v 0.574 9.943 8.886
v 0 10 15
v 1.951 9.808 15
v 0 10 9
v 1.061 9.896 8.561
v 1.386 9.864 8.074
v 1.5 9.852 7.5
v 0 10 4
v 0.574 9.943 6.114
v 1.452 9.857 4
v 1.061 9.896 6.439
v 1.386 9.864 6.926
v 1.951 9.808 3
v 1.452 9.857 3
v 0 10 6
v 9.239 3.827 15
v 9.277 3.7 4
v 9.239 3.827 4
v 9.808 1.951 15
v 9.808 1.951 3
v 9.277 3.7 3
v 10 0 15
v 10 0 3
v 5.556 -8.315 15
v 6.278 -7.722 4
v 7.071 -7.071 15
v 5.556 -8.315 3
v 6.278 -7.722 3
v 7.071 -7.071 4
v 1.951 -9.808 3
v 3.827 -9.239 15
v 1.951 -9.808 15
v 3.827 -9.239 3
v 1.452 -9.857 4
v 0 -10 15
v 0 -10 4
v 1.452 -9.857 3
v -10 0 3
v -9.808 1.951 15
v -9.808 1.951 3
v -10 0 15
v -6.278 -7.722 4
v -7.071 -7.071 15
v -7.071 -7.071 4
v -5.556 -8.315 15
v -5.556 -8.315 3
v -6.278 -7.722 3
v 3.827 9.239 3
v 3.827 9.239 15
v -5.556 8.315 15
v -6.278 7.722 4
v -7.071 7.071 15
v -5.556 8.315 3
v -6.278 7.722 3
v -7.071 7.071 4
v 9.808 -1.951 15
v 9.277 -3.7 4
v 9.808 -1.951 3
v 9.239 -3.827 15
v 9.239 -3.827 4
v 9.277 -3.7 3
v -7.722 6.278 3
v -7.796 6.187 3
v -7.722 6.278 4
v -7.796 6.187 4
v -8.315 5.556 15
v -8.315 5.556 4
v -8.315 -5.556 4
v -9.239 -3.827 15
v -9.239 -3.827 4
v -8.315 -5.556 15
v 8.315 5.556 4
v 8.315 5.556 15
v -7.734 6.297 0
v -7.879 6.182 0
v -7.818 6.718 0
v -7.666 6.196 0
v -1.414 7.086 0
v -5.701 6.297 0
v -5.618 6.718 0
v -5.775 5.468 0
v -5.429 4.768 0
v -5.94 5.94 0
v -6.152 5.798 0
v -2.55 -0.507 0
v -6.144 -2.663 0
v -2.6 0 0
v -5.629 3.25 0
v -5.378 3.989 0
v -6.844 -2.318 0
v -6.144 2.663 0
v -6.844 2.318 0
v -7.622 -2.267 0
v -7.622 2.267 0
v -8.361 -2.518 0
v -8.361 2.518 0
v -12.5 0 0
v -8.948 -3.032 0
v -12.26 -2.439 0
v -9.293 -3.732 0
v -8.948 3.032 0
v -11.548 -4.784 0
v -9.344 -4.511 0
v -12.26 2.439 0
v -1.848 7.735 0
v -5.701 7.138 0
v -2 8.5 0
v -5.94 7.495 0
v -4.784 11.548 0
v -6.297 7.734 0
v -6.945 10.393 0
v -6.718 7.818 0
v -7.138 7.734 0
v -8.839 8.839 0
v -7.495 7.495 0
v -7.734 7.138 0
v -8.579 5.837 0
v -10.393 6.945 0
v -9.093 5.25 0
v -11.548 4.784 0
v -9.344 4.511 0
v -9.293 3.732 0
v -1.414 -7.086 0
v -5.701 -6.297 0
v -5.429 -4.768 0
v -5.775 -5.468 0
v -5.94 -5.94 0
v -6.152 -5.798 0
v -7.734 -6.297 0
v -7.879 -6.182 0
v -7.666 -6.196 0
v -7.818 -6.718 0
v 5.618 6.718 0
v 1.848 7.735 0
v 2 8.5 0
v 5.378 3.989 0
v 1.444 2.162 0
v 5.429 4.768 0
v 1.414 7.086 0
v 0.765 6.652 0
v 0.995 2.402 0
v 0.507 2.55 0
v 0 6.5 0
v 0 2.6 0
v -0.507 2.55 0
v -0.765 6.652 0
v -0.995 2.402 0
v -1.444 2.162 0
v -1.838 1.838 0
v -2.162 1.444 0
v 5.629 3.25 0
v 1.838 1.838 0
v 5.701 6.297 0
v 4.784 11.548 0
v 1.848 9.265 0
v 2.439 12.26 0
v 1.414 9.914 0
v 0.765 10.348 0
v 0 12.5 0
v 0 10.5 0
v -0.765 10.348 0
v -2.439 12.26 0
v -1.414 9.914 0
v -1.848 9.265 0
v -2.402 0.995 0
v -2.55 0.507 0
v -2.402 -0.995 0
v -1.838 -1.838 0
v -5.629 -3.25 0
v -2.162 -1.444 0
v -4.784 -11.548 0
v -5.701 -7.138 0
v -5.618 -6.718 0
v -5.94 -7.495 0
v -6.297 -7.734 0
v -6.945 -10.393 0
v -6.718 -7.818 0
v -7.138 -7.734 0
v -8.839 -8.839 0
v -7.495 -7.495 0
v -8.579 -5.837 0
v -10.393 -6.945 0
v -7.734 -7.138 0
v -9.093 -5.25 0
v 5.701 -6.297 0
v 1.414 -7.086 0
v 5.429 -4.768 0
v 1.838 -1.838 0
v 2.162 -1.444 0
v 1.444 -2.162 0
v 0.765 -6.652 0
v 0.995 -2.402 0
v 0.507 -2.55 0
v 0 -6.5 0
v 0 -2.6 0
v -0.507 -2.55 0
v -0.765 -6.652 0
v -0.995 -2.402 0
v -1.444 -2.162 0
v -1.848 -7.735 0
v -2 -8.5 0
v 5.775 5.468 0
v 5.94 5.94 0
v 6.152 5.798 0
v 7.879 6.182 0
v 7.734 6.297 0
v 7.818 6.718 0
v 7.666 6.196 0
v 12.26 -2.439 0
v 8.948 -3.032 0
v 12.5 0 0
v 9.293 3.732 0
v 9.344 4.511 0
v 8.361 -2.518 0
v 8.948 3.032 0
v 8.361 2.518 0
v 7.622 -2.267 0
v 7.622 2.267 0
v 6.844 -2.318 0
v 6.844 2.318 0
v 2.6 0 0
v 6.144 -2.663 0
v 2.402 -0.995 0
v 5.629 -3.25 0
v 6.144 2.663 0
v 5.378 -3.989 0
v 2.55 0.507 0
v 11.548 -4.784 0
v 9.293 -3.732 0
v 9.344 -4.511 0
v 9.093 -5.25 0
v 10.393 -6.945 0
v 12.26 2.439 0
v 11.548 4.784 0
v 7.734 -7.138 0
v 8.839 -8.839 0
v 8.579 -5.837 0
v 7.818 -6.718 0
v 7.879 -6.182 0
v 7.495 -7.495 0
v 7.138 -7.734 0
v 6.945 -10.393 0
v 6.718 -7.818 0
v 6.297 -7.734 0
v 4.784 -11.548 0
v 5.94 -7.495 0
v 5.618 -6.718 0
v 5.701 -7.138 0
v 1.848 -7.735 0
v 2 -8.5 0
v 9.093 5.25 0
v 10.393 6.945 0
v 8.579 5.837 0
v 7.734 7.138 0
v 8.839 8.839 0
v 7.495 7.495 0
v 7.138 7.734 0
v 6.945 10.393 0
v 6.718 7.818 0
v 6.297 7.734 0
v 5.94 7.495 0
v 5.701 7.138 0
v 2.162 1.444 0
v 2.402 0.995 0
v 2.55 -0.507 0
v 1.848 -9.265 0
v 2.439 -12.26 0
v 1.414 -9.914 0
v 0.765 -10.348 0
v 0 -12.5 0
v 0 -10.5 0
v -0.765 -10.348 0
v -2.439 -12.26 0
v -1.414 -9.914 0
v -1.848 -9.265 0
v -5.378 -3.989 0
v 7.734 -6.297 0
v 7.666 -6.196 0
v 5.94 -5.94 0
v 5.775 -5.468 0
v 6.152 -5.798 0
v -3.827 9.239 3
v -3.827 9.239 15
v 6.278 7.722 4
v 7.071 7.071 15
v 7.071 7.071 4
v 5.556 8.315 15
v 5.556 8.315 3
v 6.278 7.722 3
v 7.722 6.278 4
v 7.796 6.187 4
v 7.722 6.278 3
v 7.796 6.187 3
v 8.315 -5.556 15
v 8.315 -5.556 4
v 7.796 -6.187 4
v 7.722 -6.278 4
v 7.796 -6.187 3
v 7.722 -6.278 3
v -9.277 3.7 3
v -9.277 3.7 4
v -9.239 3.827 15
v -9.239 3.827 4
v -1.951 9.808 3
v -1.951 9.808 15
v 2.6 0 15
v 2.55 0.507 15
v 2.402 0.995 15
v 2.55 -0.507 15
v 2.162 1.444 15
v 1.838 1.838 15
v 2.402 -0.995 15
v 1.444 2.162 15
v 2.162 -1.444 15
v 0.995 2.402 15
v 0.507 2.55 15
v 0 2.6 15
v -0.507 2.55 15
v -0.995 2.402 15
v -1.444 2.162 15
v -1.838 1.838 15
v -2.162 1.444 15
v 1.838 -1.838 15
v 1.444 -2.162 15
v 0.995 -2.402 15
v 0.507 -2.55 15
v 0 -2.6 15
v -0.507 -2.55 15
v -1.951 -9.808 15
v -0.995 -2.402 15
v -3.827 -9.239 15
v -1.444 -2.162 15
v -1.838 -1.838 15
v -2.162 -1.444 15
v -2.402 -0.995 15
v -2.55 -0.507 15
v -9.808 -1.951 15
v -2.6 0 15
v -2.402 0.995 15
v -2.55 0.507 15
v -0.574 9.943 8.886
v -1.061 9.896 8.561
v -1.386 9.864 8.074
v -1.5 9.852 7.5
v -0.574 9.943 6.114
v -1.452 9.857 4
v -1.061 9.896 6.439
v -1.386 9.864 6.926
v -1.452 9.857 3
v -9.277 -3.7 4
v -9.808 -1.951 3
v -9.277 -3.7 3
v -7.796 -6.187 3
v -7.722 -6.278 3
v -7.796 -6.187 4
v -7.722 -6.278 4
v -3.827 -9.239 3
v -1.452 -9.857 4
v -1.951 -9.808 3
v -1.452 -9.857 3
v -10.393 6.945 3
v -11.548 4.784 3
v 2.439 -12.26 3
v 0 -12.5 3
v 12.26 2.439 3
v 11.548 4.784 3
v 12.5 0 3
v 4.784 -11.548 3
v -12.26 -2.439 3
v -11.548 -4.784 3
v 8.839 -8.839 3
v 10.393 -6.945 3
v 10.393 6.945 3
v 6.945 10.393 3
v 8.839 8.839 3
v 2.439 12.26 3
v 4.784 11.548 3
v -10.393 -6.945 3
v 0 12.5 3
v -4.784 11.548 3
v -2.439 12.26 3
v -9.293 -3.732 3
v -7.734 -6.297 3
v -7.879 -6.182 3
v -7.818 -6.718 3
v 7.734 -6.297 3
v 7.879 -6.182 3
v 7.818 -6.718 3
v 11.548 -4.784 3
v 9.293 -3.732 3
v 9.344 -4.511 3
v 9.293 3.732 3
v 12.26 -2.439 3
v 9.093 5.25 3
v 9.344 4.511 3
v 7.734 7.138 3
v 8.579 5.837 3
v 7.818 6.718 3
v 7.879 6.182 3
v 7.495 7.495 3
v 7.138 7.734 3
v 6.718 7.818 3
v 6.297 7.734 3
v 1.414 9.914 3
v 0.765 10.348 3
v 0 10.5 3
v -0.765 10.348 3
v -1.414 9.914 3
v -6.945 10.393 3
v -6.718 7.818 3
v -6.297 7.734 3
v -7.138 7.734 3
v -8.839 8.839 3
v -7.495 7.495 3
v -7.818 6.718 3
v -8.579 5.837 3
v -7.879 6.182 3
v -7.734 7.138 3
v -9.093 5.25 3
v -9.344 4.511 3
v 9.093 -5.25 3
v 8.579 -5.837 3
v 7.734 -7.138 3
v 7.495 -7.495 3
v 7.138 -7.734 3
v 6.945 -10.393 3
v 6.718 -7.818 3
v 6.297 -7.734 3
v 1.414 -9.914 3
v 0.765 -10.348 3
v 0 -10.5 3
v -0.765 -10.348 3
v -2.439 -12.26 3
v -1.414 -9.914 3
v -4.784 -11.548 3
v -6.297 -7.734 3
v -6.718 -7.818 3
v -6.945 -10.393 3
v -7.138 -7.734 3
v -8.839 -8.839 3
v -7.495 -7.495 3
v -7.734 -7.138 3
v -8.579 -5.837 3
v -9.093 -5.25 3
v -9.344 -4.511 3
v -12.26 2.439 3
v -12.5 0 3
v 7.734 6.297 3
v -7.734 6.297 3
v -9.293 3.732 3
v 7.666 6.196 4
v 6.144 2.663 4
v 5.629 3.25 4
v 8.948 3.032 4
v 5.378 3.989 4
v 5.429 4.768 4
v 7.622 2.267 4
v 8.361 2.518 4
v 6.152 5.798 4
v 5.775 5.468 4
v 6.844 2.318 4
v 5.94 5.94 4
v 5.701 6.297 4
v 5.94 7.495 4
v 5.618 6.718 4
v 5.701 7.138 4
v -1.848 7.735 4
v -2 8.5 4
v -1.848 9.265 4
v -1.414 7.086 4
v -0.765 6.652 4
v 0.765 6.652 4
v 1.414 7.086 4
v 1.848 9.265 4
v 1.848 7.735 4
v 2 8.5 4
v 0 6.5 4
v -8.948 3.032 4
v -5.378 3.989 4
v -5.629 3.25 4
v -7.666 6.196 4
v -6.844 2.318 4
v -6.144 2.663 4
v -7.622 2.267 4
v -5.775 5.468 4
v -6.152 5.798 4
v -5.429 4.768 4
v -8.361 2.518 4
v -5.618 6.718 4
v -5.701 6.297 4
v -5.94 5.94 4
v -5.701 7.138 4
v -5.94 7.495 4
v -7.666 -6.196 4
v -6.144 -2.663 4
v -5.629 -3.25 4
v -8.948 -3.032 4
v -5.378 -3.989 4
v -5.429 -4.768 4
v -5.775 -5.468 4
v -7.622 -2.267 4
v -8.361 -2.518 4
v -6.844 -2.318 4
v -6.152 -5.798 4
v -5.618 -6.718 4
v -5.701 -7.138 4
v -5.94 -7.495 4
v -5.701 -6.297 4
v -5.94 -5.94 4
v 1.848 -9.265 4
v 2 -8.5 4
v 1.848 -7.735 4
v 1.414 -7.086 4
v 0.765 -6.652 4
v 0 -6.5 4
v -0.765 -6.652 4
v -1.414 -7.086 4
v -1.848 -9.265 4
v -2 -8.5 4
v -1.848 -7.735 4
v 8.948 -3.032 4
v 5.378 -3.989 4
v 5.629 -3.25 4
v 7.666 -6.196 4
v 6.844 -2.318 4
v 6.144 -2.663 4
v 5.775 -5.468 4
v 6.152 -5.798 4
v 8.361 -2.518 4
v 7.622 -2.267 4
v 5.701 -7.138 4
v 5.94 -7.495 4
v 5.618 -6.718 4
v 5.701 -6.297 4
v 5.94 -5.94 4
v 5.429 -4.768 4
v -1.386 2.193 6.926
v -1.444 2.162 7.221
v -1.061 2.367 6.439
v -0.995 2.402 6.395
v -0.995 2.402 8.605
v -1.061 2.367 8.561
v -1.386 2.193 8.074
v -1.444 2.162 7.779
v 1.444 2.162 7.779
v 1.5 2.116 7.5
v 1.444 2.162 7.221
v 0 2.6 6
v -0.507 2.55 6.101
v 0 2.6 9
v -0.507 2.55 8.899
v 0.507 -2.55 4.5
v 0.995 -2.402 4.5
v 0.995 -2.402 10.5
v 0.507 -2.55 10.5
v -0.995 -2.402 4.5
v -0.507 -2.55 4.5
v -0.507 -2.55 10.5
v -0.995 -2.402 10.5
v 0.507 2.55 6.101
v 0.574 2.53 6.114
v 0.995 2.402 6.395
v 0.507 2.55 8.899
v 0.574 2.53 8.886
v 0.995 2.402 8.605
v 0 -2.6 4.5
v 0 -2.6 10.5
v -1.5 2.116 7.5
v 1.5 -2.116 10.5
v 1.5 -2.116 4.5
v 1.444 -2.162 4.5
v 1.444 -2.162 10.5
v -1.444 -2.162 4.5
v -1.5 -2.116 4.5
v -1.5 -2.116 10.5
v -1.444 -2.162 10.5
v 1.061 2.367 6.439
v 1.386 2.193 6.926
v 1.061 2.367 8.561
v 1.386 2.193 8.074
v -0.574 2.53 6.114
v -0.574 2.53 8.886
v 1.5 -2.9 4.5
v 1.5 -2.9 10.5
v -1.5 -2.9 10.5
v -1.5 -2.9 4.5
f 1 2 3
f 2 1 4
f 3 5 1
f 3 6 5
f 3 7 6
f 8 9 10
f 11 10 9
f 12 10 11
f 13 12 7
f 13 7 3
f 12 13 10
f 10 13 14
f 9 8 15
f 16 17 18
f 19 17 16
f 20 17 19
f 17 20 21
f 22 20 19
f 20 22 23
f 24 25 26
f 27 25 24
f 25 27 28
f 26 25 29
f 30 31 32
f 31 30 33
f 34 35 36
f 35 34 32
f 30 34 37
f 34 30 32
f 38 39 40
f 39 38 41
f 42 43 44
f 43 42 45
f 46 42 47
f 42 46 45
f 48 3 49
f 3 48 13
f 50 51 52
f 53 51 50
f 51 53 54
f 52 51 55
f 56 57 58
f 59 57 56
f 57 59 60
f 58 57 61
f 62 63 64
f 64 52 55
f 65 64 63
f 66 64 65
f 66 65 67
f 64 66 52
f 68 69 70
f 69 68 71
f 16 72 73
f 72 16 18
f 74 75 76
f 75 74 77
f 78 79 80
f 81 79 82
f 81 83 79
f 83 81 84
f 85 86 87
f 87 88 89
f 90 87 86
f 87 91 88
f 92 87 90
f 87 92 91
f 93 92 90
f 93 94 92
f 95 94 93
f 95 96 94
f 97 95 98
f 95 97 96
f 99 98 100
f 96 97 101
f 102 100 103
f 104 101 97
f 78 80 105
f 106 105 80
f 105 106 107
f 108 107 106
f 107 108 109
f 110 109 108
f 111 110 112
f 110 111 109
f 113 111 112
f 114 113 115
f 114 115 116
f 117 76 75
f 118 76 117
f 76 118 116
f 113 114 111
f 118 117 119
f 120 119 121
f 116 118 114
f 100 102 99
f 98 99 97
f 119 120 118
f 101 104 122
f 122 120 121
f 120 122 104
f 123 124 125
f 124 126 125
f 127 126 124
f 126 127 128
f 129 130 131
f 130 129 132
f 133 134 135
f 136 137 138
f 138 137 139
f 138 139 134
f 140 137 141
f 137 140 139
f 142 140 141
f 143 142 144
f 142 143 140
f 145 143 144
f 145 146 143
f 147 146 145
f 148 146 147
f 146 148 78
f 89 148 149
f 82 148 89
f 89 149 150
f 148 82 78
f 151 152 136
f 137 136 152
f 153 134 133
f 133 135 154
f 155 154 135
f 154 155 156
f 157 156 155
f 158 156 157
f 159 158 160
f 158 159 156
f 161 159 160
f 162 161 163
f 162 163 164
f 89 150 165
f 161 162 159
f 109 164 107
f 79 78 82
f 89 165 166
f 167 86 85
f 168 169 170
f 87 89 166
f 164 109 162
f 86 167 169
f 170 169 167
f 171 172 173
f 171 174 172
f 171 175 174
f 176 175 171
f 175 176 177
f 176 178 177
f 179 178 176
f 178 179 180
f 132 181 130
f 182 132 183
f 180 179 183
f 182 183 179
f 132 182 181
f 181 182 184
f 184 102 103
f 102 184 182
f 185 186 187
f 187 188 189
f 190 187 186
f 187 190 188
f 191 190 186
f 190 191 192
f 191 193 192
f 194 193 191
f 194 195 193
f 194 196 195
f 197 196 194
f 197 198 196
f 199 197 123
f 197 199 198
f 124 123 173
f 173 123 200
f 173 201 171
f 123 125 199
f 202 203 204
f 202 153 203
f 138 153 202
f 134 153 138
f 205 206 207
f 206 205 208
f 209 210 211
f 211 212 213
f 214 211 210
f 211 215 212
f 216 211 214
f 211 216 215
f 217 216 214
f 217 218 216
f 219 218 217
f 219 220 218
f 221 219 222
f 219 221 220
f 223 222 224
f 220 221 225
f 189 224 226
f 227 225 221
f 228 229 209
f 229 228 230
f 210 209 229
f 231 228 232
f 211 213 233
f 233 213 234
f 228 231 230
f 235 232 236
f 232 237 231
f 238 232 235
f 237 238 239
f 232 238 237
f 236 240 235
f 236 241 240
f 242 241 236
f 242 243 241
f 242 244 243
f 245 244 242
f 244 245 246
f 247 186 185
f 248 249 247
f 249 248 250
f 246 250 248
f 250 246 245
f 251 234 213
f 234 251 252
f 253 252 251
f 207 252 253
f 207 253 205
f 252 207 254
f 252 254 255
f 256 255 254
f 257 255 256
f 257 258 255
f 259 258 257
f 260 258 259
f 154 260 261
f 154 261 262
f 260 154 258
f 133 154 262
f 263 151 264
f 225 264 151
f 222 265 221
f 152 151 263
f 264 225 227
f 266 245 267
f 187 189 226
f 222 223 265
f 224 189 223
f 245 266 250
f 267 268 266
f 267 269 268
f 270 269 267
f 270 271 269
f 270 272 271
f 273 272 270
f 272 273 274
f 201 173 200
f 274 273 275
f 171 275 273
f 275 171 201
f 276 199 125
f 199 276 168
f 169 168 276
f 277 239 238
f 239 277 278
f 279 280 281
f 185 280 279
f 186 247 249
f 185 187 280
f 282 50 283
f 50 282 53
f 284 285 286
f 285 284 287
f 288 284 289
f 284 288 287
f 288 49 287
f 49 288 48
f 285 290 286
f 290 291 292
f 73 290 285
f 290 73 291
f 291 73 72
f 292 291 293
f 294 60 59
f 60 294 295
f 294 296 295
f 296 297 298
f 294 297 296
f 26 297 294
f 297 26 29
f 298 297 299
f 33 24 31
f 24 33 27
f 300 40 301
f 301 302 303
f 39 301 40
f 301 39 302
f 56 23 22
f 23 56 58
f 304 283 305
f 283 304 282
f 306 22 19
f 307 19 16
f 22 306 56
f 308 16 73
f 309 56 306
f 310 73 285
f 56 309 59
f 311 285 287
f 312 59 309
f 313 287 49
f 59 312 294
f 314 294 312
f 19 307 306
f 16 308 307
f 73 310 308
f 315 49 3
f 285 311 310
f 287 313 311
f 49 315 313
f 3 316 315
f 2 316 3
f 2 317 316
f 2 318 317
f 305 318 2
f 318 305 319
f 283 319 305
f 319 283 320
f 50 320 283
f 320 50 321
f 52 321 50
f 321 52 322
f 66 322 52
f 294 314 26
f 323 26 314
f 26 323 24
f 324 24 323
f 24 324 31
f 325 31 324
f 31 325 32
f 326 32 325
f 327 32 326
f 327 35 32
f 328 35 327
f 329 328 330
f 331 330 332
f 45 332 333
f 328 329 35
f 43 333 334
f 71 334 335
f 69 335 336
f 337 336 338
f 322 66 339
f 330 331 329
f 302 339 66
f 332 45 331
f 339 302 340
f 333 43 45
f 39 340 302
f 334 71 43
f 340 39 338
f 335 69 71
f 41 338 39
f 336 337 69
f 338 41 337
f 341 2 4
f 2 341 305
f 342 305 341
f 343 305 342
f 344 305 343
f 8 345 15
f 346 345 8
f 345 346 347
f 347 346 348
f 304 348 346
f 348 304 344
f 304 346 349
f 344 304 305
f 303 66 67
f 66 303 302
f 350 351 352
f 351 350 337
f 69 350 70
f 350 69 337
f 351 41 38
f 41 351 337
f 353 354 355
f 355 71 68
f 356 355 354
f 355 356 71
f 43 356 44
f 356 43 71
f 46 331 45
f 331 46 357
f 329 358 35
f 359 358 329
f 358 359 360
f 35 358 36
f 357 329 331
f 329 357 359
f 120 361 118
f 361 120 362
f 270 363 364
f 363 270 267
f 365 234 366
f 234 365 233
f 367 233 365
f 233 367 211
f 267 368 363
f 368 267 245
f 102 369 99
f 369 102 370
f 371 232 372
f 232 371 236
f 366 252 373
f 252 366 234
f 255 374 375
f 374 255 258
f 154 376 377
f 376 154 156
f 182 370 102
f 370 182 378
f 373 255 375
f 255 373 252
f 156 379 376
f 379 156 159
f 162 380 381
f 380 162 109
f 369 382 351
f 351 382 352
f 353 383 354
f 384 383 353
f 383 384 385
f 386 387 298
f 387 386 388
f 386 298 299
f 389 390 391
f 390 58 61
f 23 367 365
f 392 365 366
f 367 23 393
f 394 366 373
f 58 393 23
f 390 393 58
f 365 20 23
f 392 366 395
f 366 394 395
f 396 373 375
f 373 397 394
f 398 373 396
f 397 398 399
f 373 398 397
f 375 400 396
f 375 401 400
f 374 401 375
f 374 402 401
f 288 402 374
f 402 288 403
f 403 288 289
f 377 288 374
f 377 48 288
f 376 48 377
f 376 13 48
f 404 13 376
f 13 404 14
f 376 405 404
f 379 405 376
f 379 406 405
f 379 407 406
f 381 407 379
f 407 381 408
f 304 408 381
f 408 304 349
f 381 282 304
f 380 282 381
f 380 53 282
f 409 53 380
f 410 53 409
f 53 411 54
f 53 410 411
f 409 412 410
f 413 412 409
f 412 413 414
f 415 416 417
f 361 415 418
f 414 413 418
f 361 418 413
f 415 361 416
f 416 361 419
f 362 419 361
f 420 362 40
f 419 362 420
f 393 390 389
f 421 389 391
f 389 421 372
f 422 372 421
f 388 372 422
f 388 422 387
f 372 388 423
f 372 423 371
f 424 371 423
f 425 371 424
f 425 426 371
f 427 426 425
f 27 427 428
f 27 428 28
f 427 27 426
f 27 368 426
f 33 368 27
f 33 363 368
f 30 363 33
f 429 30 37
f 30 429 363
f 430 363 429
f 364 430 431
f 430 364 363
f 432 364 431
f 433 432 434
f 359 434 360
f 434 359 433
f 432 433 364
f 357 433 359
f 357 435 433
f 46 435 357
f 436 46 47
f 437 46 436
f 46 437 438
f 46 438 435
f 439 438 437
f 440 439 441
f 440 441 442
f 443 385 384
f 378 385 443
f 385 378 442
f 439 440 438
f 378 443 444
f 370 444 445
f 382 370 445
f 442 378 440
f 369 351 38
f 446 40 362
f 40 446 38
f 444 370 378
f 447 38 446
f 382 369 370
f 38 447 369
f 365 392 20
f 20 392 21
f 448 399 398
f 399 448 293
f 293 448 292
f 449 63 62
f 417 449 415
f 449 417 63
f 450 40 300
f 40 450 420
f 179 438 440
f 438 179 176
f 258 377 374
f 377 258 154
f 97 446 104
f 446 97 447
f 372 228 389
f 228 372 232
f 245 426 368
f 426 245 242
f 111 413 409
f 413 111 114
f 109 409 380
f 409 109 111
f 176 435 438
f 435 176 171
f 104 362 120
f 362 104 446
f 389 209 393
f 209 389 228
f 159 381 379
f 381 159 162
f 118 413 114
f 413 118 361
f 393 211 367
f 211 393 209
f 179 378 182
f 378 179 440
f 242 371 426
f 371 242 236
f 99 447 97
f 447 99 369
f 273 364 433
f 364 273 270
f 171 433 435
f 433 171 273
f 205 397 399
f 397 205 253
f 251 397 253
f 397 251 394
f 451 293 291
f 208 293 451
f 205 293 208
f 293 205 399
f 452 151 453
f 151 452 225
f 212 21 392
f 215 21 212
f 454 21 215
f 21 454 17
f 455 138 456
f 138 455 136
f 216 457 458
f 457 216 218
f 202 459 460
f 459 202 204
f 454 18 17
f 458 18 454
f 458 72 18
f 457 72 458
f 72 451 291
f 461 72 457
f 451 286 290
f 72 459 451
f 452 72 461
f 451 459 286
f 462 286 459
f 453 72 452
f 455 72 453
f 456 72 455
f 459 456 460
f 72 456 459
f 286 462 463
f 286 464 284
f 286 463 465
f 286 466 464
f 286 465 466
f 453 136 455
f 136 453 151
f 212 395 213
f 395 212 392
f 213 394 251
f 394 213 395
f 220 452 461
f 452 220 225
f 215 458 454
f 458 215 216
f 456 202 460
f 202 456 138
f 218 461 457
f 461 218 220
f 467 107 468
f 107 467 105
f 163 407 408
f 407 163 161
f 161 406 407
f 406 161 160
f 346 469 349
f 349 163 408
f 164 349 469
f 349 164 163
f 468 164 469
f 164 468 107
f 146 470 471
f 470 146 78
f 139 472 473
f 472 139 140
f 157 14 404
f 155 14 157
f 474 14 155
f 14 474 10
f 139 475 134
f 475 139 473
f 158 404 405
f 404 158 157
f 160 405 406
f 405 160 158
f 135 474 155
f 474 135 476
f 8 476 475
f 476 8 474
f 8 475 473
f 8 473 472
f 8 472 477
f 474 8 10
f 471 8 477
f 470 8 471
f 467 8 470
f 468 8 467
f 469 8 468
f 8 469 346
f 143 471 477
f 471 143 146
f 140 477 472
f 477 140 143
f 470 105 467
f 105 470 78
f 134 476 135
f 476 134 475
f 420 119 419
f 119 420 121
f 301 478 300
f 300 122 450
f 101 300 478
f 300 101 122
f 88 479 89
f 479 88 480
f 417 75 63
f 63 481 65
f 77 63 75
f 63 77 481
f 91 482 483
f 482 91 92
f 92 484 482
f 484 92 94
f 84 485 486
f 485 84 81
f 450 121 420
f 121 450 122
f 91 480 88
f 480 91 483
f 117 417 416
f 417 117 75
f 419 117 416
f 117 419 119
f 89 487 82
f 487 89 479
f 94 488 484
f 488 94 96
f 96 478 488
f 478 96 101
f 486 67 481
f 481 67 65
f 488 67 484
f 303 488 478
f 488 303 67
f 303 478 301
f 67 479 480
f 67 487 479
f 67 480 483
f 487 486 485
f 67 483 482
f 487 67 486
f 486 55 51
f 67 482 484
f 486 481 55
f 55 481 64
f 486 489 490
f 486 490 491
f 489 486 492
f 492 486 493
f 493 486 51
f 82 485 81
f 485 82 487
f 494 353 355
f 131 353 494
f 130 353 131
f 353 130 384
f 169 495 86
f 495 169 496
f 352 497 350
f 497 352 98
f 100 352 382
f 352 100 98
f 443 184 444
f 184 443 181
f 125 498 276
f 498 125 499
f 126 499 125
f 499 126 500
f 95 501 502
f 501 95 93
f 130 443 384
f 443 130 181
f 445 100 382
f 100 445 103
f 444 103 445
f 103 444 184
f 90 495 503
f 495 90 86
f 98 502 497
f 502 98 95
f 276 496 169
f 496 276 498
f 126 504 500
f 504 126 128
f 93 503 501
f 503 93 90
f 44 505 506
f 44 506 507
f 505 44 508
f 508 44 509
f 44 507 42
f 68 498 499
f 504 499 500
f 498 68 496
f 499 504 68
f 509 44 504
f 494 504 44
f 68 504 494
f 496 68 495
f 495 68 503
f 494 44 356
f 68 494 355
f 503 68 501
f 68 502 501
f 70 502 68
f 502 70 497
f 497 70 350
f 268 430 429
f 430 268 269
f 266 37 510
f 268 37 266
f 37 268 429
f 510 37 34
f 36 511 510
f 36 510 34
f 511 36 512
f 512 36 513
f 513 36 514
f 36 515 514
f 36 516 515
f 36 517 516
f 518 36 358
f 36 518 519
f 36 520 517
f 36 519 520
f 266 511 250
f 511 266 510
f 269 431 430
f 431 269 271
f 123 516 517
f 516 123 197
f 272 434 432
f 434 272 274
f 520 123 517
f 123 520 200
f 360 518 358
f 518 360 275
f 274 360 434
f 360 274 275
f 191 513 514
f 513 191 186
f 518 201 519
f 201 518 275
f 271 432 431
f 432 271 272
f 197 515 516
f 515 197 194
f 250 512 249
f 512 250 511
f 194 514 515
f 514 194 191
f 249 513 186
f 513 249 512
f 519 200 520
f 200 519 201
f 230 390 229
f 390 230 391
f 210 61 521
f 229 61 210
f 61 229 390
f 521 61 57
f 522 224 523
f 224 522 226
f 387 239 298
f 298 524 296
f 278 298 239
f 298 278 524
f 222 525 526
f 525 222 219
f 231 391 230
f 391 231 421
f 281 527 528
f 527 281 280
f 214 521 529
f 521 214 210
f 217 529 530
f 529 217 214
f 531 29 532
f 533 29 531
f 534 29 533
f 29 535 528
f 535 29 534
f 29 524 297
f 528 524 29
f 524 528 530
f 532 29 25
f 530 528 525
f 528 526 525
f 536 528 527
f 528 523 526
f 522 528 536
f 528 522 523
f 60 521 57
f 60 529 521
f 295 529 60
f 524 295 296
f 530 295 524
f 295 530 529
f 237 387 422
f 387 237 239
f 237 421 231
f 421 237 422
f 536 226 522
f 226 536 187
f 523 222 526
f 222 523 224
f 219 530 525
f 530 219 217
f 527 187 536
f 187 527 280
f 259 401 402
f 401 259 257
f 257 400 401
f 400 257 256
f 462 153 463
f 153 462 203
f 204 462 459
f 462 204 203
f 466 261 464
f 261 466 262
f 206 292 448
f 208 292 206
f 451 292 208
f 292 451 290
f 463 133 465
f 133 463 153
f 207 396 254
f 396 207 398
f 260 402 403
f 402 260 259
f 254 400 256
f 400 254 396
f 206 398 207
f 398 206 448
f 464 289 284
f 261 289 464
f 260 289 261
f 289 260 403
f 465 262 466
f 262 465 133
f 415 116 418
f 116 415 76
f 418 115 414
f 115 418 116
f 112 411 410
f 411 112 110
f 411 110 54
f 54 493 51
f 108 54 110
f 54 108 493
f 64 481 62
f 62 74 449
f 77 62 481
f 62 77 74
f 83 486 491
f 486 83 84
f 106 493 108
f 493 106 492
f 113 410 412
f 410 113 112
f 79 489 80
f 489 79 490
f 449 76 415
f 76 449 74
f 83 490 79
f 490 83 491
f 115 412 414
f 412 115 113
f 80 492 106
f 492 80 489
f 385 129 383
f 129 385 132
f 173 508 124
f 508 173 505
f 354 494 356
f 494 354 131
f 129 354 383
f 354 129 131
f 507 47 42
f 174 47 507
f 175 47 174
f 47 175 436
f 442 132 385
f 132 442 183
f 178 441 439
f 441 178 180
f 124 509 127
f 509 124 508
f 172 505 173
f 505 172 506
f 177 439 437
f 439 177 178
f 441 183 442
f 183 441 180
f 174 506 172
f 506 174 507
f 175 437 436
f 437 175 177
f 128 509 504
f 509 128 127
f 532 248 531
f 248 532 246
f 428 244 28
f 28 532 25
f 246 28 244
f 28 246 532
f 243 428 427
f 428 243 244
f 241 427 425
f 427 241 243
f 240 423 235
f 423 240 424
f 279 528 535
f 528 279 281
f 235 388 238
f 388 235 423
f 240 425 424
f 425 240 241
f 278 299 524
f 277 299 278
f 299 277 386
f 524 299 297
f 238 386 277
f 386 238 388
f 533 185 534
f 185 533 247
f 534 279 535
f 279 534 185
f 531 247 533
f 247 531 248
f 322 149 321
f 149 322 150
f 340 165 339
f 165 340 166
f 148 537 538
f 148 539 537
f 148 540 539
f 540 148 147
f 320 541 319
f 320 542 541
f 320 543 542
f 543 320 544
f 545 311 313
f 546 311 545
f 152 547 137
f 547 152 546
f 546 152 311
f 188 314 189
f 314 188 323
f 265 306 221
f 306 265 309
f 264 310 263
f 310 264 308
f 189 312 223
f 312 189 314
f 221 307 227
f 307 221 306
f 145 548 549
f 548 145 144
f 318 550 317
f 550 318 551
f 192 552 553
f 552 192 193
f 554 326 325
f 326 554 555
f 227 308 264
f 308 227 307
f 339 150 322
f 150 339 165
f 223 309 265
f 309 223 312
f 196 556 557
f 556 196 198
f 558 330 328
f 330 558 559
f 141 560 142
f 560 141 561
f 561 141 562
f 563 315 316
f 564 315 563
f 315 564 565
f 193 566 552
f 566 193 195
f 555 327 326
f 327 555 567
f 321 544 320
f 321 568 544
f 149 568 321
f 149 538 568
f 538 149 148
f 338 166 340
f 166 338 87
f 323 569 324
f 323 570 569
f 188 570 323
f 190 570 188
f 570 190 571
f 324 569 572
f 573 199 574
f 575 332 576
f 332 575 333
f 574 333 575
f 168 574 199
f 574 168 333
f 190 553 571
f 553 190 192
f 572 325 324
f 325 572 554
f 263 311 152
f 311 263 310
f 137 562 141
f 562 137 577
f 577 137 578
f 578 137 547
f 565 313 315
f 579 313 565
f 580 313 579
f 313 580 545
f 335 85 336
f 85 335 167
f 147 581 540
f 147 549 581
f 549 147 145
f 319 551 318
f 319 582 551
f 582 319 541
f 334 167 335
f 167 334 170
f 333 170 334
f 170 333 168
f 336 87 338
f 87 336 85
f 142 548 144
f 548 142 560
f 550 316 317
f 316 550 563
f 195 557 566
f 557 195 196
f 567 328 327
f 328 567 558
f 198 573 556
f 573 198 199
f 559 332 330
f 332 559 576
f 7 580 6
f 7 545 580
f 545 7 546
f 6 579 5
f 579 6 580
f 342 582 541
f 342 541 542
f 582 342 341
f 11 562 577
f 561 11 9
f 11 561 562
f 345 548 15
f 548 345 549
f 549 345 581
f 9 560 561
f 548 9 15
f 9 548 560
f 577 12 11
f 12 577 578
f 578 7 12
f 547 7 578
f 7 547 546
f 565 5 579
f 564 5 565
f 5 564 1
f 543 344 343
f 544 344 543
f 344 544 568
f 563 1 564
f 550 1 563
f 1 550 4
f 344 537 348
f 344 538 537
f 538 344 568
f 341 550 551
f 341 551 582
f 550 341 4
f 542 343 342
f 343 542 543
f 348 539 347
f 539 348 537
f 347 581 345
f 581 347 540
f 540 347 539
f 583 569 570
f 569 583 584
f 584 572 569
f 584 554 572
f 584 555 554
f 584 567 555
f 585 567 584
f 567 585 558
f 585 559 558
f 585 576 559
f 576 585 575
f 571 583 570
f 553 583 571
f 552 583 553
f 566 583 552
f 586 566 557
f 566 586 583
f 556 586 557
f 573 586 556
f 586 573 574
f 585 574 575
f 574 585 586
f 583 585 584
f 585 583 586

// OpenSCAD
// ============================================
// ESP32 Rover - Wheel Hub
// ============================================
// Design Specification v1.0
//
// Wheel hub adapter for 40mm rubber wheels.
// Print 4× for complete set.
// ============================================

// Axle dimensions
axle_dia = 5;
axle_bore = 5.2;  // Clearance fit

// Hub dimensions
hub_outer_dia = 20;
hub_length = 15;
hub_flange_dia = 25;
hub_flange_thickness = 3;

// Wheel interface
wheel_pattern = "hex";  // "hex" or "spline"
hex_size = 12;  // 12mm hex (common RC standard)

// Grub screw
grub_screw_dia = 3;  // M3
grub_screw_depth = 8;

// Resolution
$fn = 32;

module wheel_hub() {
    difference() {
        union() {
            // Main hub body
            cylinder(d = hub_outer_dia, h = hub_length);

            // Wheel mounting flange
            cylinder(d = hub_flange_dia, h = hub_flange_thickness);

            // Hex pattern for wheel
            translate([0, 0, hub_length - 5])
                cylinder(d = hex_size * 2 / sqrt(3), h = 5, $fn = 6);
        }

        // Axle bore
        translate([0, 0, -1])
            cylinder(d = axle_bore, h = hub_length + 2);

        // Grub screw hole (M3)
        translate([0, hub_outer_dia / 2 + 1, hub_length / 2])
            rotate([90, 0, 0])
                cylinder(d = grub_screw_dia, h = grub_screw_depth + 2, $fn = 16);

        // Grub screw flat (for set screw to grip)
        translate([-1.5, -axle_bore / 2 - 0.3, hub_length / 2 - 3])
            cube([3, 1, 6]);

        // Weight reduction holes in flange
        for (angle = [0:60:300]) {
            rotate([0, 0, angle + 30])
                translate([hub_flange_dia / 2 - 4, 0, -1])
                    cylinder(d = 4, h = hub_flange_thickness + 2, $fn = 16);
        }

        // Wheel bolt holes (M2)
        for (angle = [0:90:270]) {
            rotate([0, 0, angle + 45])
                translate([hub_flange_dia / 2 - 3, 0, -1])
                    cylinder(d = 2.2, h = hub_flange_thickness + 2, $fn = 16);
        }
    }
}

// Render the part
wheel_hub();

// Show axle reference (for visualization)
// %translate([0, 0, -5]) cylinder(d = axle_dia, h = hub_length + 10);
